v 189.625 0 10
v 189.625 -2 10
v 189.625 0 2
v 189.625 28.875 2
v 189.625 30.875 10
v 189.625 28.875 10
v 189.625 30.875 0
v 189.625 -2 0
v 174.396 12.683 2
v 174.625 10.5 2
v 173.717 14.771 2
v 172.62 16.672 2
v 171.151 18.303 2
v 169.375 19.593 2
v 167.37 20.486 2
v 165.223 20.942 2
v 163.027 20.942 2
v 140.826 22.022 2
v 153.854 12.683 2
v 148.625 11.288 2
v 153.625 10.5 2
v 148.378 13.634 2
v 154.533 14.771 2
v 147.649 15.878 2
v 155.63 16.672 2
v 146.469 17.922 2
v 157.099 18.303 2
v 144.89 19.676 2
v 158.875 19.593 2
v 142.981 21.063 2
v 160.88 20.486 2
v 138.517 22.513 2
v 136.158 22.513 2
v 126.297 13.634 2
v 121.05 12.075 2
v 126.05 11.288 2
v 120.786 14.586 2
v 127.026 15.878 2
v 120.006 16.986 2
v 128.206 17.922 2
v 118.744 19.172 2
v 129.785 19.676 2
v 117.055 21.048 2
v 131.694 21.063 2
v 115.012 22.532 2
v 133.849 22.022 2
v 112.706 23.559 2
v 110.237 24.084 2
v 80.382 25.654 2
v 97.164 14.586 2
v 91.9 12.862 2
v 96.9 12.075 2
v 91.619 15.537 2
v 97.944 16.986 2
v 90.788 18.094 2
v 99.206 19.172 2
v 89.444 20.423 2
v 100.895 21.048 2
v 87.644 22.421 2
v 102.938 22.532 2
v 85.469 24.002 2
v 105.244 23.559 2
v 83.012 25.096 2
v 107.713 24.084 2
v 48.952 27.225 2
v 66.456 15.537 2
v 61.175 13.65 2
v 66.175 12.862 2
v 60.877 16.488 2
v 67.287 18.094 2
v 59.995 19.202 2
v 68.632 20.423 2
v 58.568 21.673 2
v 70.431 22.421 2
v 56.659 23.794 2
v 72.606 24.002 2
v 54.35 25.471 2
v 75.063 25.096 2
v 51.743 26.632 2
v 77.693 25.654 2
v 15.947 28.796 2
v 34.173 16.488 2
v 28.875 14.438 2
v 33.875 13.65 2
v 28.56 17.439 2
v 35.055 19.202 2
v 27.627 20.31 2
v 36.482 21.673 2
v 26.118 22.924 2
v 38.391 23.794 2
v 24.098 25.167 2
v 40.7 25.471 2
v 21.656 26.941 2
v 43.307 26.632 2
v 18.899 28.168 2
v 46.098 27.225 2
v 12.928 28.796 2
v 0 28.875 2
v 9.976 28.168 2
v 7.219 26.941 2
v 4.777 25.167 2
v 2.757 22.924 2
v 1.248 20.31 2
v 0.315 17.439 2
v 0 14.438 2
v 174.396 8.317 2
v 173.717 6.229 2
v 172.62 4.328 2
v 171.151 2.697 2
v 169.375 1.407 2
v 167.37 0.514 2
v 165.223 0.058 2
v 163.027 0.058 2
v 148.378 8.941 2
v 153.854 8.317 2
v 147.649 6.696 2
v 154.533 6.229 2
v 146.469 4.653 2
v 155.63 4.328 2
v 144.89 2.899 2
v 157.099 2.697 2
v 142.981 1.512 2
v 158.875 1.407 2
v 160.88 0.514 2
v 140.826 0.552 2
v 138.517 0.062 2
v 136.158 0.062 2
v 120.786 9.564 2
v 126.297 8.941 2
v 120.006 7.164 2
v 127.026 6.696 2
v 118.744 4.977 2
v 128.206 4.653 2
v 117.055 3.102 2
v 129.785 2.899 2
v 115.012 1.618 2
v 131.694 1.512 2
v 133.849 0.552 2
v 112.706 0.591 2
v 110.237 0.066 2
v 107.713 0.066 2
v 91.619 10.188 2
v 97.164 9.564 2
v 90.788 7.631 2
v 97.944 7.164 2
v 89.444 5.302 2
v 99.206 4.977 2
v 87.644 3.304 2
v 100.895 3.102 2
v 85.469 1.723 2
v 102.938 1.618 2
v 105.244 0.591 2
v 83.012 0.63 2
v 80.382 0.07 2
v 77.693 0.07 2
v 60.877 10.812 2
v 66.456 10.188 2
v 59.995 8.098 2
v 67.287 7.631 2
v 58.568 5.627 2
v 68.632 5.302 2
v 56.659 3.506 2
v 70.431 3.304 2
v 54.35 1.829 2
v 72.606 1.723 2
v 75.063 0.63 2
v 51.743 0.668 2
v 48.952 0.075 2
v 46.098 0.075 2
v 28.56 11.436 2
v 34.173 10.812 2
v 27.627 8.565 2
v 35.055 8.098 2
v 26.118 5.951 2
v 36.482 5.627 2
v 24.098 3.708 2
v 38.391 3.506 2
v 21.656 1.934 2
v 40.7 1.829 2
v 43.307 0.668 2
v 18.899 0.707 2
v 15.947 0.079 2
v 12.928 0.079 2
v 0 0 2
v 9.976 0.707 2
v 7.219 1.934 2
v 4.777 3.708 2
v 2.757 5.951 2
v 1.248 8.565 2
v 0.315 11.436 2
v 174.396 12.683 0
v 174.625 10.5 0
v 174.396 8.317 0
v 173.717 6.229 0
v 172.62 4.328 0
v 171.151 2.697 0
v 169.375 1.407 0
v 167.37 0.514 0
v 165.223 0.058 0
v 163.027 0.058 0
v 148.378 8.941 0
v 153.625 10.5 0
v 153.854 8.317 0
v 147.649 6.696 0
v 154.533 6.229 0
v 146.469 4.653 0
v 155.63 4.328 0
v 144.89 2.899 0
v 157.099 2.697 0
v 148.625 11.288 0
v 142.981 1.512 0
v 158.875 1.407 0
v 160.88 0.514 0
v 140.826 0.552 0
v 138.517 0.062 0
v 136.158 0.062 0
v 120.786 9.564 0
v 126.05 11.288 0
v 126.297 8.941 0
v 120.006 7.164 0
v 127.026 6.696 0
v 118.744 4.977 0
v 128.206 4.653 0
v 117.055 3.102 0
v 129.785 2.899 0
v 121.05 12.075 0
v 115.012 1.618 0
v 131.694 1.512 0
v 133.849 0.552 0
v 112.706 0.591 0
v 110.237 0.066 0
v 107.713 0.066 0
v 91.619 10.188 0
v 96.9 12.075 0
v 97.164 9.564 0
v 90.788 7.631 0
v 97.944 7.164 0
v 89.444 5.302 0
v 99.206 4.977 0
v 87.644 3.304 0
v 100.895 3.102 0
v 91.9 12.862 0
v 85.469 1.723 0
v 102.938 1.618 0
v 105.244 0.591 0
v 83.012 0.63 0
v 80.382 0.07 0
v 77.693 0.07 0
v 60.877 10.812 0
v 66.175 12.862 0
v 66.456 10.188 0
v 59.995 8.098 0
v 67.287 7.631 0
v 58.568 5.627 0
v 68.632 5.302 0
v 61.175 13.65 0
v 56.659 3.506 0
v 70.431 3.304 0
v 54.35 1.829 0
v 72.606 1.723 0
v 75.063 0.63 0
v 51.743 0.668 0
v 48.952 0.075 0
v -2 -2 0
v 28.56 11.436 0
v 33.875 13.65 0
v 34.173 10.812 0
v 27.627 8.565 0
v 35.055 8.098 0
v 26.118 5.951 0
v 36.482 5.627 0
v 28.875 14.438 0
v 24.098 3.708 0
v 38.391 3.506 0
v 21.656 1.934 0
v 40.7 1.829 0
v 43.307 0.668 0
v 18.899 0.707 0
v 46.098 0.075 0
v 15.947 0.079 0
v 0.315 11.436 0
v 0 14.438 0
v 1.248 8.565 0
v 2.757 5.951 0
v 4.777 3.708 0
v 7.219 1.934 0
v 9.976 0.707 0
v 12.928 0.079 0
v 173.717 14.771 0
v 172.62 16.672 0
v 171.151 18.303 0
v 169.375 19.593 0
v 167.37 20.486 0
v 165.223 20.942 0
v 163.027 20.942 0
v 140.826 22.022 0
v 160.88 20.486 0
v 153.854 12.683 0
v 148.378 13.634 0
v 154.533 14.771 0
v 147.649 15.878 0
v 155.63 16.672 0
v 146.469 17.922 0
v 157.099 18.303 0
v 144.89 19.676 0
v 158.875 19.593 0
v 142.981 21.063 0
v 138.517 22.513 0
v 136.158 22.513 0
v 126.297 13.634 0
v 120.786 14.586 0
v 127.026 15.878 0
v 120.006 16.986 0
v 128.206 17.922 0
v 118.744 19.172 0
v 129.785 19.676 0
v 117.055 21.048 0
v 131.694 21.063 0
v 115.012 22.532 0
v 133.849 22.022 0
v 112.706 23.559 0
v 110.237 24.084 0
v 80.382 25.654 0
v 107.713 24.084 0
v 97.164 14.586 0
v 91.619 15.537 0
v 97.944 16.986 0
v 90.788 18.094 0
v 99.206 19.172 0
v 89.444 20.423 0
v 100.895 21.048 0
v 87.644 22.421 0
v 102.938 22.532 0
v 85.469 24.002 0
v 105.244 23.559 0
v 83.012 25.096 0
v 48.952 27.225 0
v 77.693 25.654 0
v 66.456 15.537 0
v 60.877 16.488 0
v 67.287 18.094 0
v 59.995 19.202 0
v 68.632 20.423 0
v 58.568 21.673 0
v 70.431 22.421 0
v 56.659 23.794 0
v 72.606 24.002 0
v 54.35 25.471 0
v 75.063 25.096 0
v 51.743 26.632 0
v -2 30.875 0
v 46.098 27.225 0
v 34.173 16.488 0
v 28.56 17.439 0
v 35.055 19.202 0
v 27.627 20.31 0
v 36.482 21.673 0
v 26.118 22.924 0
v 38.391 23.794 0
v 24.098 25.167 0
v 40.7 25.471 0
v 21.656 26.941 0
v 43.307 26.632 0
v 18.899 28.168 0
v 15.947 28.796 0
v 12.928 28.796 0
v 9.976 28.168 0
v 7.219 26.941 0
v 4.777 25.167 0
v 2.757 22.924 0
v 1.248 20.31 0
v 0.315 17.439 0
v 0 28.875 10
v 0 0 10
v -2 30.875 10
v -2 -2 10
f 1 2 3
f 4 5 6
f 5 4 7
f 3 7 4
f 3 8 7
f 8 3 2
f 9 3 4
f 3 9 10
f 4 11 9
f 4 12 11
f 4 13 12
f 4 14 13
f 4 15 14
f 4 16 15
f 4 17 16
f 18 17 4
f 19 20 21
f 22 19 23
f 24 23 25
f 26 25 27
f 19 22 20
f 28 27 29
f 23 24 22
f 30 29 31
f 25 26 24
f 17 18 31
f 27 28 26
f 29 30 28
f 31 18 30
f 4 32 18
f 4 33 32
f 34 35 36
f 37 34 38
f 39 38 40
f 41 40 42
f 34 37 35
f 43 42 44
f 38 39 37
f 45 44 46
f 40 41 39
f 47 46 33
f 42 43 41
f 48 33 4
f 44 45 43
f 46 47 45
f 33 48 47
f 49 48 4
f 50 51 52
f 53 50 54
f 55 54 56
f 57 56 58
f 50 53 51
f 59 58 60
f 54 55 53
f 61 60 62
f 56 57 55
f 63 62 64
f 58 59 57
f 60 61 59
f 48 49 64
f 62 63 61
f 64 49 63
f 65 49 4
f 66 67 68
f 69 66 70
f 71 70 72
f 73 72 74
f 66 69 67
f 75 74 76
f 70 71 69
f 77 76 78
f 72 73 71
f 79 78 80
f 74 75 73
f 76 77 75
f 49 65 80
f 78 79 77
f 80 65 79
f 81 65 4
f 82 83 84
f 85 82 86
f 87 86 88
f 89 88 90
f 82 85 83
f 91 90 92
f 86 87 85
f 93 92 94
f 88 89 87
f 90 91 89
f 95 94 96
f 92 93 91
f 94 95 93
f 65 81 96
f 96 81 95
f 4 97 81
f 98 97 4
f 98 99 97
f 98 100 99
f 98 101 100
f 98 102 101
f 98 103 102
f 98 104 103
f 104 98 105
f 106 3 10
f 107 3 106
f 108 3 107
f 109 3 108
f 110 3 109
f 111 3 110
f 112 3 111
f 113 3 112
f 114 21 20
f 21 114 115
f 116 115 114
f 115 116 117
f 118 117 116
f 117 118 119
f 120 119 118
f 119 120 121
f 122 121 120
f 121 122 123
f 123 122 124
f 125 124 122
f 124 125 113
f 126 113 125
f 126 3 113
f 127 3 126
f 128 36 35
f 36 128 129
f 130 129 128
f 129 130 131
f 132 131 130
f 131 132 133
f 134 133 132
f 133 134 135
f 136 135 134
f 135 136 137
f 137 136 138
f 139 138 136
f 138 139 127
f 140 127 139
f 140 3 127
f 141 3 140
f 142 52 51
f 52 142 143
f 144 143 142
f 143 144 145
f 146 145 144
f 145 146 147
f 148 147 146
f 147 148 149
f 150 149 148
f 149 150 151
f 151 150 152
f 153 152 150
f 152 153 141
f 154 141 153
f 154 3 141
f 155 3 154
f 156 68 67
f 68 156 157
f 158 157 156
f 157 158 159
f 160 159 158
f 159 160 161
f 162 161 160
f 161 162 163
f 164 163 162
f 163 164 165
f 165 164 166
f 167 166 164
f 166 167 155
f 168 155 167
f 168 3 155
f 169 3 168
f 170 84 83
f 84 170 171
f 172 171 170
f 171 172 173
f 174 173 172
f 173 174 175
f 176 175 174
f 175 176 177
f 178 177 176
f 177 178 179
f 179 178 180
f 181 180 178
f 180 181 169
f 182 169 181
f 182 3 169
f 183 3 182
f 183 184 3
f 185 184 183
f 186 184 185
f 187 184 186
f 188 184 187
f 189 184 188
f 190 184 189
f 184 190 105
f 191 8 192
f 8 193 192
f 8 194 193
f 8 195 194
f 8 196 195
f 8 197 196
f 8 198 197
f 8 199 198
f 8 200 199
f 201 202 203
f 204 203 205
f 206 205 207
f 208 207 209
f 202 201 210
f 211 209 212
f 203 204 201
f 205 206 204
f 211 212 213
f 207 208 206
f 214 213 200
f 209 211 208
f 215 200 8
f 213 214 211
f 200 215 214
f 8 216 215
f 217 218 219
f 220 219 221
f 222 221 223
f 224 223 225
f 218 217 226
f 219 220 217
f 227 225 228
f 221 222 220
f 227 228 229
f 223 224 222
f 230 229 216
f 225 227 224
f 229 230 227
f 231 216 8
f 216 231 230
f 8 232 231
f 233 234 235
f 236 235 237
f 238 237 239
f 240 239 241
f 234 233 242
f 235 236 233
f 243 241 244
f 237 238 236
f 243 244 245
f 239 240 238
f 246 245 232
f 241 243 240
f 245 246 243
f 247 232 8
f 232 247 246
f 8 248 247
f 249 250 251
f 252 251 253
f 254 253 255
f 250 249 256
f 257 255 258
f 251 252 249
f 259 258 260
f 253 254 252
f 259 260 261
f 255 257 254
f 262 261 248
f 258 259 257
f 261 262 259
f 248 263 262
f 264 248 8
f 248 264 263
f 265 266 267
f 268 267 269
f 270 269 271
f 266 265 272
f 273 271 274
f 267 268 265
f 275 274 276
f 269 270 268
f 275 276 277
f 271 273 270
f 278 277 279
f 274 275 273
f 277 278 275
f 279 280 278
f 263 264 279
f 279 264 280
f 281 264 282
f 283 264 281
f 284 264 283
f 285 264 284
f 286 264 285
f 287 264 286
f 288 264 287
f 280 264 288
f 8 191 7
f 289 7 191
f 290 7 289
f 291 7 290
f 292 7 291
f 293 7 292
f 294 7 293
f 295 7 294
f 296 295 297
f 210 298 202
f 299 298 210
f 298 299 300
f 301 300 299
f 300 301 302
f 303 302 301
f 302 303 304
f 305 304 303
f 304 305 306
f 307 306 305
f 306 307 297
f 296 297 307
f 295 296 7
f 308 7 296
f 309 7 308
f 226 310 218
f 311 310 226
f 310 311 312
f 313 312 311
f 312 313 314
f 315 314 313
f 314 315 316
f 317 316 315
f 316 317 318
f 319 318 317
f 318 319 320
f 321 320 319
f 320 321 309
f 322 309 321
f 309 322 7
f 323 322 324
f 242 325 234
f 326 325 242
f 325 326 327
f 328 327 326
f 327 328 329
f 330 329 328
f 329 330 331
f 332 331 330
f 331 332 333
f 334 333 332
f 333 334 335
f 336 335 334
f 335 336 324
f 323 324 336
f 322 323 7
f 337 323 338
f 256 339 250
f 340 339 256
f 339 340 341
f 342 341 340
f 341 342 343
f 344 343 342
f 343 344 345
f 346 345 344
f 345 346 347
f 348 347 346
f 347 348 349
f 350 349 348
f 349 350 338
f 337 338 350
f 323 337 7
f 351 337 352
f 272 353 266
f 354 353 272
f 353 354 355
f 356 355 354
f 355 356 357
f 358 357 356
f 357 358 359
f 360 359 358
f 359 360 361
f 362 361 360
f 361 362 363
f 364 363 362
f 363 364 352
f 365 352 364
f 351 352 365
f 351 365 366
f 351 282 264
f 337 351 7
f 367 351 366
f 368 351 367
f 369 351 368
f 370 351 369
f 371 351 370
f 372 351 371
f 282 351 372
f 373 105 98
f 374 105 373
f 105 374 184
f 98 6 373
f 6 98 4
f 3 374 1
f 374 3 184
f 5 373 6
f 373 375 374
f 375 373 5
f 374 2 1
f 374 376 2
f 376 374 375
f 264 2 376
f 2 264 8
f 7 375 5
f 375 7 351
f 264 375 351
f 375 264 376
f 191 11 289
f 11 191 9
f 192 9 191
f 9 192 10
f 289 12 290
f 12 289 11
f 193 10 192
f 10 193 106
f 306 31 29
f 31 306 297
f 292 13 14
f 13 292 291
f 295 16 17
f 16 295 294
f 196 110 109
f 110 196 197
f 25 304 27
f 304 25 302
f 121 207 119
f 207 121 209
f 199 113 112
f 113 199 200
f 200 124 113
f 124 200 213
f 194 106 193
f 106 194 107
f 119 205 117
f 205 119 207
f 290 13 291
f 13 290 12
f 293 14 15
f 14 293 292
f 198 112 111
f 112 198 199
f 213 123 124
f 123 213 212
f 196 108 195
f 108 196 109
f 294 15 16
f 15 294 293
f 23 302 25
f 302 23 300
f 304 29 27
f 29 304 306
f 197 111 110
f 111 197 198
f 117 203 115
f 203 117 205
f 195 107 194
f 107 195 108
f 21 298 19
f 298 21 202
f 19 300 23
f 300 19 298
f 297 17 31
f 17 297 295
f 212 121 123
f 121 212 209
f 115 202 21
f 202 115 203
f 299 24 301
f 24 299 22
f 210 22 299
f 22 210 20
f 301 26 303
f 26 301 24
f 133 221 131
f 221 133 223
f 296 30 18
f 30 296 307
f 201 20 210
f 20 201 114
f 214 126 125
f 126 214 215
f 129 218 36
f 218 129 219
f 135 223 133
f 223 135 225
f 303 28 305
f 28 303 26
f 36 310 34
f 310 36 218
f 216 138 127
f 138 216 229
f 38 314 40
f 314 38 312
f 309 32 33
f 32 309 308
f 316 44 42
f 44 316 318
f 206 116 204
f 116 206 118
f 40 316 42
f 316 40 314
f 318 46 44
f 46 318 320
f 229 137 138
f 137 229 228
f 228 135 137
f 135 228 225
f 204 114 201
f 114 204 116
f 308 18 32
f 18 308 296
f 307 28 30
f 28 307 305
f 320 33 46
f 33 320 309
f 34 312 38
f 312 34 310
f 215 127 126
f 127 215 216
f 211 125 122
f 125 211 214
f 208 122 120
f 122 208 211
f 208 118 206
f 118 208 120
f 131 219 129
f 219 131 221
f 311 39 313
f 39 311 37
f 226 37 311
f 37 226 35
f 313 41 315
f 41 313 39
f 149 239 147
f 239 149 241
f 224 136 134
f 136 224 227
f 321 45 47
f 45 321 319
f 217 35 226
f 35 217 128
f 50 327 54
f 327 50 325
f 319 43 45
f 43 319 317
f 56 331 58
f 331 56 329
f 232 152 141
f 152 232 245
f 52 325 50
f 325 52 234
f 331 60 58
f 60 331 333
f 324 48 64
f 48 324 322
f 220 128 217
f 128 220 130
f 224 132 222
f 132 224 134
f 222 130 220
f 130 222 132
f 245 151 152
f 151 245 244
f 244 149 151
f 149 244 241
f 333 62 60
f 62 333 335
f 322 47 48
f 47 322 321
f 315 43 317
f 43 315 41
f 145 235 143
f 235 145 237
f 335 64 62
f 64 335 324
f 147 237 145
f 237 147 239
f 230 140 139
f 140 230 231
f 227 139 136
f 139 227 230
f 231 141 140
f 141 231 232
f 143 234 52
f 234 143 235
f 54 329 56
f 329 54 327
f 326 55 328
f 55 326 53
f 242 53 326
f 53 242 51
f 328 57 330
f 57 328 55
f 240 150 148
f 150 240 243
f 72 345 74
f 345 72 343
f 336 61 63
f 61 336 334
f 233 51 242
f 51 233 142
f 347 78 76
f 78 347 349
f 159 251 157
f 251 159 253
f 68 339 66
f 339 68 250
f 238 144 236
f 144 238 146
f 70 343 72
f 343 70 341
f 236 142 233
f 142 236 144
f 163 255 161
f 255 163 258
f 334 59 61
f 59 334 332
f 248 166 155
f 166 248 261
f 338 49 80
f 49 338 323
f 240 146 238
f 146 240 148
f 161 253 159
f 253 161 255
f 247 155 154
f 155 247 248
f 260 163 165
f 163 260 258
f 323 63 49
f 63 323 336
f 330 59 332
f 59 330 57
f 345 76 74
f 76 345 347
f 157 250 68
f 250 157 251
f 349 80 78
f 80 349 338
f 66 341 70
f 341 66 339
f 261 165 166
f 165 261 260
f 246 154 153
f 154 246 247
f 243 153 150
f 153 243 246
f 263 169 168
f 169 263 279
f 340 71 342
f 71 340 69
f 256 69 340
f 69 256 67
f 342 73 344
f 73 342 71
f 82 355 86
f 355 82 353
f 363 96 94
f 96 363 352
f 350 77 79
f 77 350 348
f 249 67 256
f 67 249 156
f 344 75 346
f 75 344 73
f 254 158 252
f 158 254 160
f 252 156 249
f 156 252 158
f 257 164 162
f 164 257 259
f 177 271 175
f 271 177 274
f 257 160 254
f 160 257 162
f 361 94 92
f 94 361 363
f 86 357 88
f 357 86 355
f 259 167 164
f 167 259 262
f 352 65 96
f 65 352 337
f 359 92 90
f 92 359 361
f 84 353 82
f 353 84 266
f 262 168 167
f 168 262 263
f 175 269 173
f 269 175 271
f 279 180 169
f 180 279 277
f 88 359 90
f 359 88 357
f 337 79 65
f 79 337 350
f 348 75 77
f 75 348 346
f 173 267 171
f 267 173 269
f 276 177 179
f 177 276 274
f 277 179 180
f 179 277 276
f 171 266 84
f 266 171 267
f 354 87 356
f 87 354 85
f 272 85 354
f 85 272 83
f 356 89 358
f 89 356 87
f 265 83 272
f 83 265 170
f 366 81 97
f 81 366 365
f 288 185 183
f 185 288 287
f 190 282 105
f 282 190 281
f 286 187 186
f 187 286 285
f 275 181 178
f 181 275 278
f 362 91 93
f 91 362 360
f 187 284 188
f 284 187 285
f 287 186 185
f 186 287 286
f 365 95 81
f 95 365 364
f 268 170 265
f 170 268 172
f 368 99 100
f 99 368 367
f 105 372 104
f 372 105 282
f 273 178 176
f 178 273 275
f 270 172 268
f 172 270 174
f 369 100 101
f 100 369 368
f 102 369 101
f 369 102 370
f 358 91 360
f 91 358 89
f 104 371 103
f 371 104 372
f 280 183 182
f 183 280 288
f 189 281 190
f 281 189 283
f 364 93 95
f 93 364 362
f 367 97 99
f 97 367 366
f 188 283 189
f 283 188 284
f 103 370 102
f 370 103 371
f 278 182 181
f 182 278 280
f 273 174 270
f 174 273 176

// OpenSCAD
koeficient = 1.05;
vyska      = 2;
mezera     = 5;

mince1  = 20.0 * koeficient;
mince2  = 21.5 * koeficient;
mince5  = 23.0 * koeficient;
mince10 = 24.5 * koeficient;
mince20 = 26.0 * koeficient;
mince50 = 27.5 * koeficient;

module mince(diameter) {
    cylinder(d = diameter, h = 3*vyska);
}

module zakladna() {
    cube([
        mince1+mince2+mince5+mince10+mince20+mince50+8*mezera,
        mince50,
        vyska]);
    translate([0, -vyska,0])
    cube([
        mince1+mince2+mince5+mince10+mince20+mince50+8*mezera,
        vyska,
        5*vyska]);
        translate([0, -vyska,0])
    translate([0, mince50+vyska,0])
    cube([
        mince1+mince2+mince5+mince10+mince20+mince50+8*mezera,
        vyska,
        5*vyska]);
    translate([-vyska, -vyska, 0])
    cube([
        vyska,
        mince50+2*vyska,
        5*vyska]);

}

difference() {
zakladna();
translate([0.5*mince1+mince2+mince5+mince10+mince20+mince50+5*mezera, 0.5*mince1, -vyska])
    mince(mince1);
translate([0.5*mince2+mince5+mince10+mince20+mince50+4*mezera, 0.5*mince2, -vyska])
    mince(mince2);
translate([0.5*mince5+mince10+mince20+mince50+3*mezera, 0.5*mince5, -vyska])
    mince(mince5);
translate([0.5*mince10+mince20+mince50+2*mezera, 0.5*mince10, -vyska])
    mince(mince10);
translate([0.5*mince20+mince50+1*mezera, 0.5*mince20, -vyska])
    mince(mince20);
translate([0.5*mince50, 0.5*mince50, -vyska])
    mince(mince50);
}
